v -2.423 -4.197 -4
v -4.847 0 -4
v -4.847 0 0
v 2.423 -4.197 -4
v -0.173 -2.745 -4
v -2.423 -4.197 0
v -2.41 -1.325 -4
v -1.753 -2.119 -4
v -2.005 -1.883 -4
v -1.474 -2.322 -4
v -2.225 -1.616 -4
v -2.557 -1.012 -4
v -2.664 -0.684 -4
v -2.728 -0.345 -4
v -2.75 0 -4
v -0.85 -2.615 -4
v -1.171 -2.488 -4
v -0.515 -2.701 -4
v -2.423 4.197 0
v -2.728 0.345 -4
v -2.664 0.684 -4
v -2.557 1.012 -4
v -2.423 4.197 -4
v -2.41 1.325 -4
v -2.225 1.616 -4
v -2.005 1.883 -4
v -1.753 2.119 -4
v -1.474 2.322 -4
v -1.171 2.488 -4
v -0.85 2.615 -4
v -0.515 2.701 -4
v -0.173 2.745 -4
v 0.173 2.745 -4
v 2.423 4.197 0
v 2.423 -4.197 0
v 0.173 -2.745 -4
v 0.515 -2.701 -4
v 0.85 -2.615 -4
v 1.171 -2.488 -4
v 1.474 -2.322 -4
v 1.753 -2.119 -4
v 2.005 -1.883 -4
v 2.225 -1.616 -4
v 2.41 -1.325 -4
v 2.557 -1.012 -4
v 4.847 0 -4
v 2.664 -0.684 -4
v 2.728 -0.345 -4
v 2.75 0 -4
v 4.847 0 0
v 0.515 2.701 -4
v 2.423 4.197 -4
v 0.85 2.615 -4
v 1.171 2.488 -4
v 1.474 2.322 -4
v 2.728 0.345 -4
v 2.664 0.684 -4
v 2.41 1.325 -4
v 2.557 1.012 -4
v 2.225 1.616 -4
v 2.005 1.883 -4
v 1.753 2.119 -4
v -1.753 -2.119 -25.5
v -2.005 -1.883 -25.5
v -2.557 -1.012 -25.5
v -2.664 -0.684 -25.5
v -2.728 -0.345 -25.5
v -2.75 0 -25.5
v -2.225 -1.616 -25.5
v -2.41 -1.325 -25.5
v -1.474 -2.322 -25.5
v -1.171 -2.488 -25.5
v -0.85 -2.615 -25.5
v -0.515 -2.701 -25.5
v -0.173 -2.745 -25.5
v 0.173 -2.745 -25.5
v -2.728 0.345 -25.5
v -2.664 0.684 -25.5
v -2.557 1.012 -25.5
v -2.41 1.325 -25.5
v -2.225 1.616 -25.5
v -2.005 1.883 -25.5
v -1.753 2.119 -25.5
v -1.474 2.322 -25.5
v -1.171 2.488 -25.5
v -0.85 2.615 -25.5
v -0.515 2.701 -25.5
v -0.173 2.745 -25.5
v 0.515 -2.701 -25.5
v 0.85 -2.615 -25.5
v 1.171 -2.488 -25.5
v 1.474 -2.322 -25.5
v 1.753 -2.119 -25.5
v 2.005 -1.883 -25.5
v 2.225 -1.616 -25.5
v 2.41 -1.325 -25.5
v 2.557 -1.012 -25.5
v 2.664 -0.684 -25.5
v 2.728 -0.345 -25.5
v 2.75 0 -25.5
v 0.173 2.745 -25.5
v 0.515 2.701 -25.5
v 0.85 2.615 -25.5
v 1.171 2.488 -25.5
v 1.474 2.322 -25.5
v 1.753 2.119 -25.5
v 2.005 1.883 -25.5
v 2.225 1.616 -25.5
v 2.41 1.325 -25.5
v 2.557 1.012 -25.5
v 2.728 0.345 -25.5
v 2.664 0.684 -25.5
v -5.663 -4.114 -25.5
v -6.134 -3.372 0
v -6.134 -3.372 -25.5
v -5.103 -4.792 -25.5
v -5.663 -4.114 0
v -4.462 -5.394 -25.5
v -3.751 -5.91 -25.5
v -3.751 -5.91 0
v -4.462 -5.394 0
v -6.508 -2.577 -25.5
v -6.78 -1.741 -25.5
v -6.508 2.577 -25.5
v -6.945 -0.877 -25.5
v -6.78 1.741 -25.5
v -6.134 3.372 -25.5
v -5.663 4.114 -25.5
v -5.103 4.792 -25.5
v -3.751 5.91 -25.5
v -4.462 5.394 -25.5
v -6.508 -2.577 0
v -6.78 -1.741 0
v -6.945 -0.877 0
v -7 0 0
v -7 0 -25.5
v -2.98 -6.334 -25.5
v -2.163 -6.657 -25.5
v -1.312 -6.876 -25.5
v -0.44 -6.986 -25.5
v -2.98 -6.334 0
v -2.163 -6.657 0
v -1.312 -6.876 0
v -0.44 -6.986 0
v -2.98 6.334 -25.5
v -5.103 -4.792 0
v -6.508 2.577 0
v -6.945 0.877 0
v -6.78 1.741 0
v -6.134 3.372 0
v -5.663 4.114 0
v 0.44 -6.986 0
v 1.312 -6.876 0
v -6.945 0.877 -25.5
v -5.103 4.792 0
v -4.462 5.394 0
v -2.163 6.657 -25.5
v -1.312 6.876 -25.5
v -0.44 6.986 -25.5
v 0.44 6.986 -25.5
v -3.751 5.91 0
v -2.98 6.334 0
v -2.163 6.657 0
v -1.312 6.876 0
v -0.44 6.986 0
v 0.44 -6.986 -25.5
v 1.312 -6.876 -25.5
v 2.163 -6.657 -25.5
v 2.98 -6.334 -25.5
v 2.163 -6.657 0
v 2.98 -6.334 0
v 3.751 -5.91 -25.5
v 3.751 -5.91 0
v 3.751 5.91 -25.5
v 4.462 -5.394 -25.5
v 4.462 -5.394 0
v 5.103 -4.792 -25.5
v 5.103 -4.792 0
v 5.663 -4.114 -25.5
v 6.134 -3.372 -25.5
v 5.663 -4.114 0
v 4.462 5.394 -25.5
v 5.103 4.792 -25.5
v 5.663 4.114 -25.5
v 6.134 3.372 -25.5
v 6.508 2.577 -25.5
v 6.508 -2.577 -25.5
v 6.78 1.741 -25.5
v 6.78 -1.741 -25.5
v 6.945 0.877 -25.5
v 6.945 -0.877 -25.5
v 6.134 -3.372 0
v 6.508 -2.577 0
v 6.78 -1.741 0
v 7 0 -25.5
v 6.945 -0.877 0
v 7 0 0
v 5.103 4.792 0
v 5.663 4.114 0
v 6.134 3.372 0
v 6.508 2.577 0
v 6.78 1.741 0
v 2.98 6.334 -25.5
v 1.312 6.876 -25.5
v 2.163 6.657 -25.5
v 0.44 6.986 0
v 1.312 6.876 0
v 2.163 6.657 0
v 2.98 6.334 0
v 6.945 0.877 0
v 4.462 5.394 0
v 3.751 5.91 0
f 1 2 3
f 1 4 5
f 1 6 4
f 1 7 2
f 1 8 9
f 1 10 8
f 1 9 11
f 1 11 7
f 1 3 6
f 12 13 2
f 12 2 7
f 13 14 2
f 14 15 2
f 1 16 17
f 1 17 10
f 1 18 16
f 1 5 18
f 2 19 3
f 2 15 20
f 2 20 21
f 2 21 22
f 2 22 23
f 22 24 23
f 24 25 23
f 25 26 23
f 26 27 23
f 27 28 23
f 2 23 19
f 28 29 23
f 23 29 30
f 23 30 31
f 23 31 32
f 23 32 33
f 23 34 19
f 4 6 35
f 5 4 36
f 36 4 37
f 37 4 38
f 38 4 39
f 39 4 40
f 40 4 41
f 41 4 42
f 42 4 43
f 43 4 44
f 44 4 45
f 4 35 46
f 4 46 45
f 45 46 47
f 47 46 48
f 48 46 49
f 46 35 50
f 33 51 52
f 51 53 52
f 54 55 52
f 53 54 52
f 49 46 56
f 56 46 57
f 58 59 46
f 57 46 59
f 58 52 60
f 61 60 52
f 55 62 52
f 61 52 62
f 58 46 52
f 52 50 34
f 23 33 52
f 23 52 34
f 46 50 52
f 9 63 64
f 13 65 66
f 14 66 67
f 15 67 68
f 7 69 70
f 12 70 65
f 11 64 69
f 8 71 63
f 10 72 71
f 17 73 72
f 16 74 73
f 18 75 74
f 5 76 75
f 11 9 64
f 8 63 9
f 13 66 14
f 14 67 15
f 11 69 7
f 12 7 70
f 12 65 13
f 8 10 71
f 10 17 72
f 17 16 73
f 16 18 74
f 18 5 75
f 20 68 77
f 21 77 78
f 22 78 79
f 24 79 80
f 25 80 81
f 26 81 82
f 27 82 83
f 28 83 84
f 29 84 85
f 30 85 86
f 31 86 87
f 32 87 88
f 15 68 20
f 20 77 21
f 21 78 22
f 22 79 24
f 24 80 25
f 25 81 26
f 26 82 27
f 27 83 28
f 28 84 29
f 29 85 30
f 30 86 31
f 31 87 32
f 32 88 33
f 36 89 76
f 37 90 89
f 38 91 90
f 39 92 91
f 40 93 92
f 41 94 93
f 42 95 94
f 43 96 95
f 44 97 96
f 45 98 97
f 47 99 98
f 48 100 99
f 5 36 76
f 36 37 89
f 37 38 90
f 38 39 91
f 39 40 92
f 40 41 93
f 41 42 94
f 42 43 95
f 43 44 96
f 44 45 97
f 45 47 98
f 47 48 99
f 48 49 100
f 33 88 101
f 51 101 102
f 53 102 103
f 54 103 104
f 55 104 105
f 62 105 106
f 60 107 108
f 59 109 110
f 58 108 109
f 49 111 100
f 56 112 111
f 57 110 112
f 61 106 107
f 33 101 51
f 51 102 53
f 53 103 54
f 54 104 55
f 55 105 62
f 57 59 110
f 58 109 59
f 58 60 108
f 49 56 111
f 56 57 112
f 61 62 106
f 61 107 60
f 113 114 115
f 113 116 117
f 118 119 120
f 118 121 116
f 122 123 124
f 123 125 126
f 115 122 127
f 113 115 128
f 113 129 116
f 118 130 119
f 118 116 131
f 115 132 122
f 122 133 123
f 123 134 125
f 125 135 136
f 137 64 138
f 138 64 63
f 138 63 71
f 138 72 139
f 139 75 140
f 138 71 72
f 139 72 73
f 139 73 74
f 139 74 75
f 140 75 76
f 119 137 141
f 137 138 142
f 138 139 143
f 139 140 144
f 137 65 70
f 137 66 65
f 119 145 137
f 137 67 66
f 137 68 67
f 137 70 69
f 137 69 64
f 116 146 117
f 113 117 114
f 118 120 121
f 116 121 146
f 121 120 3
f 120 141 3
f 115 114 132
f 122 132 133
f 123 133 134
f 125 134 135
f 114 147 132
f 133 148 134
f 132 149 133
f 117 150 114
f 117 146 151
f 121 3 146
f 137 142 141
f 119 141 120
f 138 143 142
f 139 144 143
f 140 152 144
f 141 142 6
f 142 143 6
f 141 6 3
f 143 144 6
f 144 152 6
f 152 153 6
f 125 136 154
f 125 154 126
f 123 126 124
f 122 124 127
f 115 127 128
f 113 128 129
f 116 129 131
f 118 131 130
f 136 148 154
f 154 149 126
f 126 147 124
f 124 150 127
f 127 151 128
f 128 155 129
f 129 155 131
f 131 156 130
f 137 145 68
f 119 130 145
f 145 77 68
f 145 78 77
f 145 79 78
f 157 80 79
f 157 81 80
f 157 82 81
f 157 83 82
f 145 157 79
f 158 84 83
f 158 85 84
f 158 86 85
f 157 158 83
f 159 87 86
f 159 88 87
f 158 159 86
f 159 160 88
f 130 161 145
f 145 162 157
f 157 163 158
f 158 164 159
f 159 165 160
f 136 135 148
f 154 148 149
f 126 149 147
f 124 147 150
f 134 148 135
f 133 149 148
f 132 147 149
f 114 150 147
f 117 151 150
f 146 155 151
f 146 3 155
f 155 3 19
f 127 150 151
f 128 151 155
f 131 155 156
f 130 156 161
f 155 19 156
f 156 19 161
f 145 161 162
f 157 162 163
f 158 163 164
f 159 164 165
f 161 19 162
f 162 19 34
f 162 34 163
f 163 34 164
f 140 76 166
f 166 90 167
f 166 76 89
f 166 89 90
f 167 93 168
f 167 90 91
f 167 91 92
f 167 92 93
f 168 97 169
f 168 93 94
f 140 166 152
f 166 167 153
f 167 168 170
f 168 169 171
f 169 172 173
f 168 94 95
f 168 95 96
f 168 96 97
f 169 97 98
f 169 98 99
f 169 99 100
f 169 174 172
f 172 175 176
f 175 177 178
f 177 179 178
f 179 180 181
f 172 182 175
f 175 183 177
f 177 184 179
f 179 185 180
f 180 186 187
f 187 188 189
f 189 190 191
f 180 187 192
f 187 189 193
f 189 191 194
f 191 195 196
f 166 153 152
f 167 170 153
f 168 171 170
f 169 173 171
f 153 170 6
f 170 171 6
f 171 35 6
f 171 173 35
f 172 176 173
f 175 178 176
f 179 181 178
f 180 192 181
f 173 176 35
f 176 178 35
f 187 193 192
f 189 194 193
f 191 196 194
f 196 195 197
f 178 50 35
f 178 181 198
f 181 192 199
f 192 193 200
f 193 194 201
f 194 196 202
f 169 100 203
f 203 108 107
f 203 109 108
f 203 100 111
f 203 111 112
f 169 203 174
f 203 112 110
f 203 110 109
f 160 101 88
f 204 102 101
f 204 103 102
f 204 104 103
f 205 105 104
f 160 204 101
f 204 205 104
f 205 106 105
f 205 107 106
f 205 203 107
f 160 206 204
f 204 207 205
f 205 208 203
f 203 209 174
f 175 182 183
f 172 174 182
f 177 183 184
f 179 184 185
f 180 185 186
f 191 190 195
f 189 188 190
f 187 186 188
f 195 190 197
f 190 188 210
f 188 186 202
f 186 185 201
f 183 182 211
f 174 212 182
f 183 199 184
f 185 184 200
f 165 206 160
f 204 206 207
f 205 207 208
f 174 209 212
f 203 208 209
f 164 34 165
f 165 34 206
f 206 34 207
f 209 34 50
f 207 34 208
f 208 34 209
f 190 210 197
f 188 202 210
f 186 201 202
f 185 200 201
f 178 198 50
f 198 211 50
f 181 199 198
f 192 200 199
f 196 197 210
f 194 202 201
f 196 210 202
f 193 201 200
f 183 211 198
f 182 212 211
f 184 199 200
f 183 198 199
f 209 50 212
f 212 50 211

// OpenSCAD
$fn = 50;

difference() {
	union() {
		translate(v = [0, 0, -25.5]) {
			cylinder(h = 25.5, r = 7.0);
		}
	}
	union() {
		translate(v = [0, 0, 0]) {
			rotate(a = [0, 0, 0]) {
				difference() {
					union() {
						translate(v = [0, 0, -4]) {
							linear_extrude(height = 4) {
								polygon(points = [[4.8468, 0.0], [2.4234000000000004, 4.197451927062417], [-2.423399999999999, 4.197451927062417], [-4.8468, 5.935618106107392e-16], [-2.423400000000002, -4.197451927062416], [2.423399999999997, -4.197451927062419]]);
							}
						}
					}
					union();
				}
			}
		}
		#translate(v = [0, 0, -100.0]) {
			cylinder(h = 200, r = 2.75);
		}
	}
}
